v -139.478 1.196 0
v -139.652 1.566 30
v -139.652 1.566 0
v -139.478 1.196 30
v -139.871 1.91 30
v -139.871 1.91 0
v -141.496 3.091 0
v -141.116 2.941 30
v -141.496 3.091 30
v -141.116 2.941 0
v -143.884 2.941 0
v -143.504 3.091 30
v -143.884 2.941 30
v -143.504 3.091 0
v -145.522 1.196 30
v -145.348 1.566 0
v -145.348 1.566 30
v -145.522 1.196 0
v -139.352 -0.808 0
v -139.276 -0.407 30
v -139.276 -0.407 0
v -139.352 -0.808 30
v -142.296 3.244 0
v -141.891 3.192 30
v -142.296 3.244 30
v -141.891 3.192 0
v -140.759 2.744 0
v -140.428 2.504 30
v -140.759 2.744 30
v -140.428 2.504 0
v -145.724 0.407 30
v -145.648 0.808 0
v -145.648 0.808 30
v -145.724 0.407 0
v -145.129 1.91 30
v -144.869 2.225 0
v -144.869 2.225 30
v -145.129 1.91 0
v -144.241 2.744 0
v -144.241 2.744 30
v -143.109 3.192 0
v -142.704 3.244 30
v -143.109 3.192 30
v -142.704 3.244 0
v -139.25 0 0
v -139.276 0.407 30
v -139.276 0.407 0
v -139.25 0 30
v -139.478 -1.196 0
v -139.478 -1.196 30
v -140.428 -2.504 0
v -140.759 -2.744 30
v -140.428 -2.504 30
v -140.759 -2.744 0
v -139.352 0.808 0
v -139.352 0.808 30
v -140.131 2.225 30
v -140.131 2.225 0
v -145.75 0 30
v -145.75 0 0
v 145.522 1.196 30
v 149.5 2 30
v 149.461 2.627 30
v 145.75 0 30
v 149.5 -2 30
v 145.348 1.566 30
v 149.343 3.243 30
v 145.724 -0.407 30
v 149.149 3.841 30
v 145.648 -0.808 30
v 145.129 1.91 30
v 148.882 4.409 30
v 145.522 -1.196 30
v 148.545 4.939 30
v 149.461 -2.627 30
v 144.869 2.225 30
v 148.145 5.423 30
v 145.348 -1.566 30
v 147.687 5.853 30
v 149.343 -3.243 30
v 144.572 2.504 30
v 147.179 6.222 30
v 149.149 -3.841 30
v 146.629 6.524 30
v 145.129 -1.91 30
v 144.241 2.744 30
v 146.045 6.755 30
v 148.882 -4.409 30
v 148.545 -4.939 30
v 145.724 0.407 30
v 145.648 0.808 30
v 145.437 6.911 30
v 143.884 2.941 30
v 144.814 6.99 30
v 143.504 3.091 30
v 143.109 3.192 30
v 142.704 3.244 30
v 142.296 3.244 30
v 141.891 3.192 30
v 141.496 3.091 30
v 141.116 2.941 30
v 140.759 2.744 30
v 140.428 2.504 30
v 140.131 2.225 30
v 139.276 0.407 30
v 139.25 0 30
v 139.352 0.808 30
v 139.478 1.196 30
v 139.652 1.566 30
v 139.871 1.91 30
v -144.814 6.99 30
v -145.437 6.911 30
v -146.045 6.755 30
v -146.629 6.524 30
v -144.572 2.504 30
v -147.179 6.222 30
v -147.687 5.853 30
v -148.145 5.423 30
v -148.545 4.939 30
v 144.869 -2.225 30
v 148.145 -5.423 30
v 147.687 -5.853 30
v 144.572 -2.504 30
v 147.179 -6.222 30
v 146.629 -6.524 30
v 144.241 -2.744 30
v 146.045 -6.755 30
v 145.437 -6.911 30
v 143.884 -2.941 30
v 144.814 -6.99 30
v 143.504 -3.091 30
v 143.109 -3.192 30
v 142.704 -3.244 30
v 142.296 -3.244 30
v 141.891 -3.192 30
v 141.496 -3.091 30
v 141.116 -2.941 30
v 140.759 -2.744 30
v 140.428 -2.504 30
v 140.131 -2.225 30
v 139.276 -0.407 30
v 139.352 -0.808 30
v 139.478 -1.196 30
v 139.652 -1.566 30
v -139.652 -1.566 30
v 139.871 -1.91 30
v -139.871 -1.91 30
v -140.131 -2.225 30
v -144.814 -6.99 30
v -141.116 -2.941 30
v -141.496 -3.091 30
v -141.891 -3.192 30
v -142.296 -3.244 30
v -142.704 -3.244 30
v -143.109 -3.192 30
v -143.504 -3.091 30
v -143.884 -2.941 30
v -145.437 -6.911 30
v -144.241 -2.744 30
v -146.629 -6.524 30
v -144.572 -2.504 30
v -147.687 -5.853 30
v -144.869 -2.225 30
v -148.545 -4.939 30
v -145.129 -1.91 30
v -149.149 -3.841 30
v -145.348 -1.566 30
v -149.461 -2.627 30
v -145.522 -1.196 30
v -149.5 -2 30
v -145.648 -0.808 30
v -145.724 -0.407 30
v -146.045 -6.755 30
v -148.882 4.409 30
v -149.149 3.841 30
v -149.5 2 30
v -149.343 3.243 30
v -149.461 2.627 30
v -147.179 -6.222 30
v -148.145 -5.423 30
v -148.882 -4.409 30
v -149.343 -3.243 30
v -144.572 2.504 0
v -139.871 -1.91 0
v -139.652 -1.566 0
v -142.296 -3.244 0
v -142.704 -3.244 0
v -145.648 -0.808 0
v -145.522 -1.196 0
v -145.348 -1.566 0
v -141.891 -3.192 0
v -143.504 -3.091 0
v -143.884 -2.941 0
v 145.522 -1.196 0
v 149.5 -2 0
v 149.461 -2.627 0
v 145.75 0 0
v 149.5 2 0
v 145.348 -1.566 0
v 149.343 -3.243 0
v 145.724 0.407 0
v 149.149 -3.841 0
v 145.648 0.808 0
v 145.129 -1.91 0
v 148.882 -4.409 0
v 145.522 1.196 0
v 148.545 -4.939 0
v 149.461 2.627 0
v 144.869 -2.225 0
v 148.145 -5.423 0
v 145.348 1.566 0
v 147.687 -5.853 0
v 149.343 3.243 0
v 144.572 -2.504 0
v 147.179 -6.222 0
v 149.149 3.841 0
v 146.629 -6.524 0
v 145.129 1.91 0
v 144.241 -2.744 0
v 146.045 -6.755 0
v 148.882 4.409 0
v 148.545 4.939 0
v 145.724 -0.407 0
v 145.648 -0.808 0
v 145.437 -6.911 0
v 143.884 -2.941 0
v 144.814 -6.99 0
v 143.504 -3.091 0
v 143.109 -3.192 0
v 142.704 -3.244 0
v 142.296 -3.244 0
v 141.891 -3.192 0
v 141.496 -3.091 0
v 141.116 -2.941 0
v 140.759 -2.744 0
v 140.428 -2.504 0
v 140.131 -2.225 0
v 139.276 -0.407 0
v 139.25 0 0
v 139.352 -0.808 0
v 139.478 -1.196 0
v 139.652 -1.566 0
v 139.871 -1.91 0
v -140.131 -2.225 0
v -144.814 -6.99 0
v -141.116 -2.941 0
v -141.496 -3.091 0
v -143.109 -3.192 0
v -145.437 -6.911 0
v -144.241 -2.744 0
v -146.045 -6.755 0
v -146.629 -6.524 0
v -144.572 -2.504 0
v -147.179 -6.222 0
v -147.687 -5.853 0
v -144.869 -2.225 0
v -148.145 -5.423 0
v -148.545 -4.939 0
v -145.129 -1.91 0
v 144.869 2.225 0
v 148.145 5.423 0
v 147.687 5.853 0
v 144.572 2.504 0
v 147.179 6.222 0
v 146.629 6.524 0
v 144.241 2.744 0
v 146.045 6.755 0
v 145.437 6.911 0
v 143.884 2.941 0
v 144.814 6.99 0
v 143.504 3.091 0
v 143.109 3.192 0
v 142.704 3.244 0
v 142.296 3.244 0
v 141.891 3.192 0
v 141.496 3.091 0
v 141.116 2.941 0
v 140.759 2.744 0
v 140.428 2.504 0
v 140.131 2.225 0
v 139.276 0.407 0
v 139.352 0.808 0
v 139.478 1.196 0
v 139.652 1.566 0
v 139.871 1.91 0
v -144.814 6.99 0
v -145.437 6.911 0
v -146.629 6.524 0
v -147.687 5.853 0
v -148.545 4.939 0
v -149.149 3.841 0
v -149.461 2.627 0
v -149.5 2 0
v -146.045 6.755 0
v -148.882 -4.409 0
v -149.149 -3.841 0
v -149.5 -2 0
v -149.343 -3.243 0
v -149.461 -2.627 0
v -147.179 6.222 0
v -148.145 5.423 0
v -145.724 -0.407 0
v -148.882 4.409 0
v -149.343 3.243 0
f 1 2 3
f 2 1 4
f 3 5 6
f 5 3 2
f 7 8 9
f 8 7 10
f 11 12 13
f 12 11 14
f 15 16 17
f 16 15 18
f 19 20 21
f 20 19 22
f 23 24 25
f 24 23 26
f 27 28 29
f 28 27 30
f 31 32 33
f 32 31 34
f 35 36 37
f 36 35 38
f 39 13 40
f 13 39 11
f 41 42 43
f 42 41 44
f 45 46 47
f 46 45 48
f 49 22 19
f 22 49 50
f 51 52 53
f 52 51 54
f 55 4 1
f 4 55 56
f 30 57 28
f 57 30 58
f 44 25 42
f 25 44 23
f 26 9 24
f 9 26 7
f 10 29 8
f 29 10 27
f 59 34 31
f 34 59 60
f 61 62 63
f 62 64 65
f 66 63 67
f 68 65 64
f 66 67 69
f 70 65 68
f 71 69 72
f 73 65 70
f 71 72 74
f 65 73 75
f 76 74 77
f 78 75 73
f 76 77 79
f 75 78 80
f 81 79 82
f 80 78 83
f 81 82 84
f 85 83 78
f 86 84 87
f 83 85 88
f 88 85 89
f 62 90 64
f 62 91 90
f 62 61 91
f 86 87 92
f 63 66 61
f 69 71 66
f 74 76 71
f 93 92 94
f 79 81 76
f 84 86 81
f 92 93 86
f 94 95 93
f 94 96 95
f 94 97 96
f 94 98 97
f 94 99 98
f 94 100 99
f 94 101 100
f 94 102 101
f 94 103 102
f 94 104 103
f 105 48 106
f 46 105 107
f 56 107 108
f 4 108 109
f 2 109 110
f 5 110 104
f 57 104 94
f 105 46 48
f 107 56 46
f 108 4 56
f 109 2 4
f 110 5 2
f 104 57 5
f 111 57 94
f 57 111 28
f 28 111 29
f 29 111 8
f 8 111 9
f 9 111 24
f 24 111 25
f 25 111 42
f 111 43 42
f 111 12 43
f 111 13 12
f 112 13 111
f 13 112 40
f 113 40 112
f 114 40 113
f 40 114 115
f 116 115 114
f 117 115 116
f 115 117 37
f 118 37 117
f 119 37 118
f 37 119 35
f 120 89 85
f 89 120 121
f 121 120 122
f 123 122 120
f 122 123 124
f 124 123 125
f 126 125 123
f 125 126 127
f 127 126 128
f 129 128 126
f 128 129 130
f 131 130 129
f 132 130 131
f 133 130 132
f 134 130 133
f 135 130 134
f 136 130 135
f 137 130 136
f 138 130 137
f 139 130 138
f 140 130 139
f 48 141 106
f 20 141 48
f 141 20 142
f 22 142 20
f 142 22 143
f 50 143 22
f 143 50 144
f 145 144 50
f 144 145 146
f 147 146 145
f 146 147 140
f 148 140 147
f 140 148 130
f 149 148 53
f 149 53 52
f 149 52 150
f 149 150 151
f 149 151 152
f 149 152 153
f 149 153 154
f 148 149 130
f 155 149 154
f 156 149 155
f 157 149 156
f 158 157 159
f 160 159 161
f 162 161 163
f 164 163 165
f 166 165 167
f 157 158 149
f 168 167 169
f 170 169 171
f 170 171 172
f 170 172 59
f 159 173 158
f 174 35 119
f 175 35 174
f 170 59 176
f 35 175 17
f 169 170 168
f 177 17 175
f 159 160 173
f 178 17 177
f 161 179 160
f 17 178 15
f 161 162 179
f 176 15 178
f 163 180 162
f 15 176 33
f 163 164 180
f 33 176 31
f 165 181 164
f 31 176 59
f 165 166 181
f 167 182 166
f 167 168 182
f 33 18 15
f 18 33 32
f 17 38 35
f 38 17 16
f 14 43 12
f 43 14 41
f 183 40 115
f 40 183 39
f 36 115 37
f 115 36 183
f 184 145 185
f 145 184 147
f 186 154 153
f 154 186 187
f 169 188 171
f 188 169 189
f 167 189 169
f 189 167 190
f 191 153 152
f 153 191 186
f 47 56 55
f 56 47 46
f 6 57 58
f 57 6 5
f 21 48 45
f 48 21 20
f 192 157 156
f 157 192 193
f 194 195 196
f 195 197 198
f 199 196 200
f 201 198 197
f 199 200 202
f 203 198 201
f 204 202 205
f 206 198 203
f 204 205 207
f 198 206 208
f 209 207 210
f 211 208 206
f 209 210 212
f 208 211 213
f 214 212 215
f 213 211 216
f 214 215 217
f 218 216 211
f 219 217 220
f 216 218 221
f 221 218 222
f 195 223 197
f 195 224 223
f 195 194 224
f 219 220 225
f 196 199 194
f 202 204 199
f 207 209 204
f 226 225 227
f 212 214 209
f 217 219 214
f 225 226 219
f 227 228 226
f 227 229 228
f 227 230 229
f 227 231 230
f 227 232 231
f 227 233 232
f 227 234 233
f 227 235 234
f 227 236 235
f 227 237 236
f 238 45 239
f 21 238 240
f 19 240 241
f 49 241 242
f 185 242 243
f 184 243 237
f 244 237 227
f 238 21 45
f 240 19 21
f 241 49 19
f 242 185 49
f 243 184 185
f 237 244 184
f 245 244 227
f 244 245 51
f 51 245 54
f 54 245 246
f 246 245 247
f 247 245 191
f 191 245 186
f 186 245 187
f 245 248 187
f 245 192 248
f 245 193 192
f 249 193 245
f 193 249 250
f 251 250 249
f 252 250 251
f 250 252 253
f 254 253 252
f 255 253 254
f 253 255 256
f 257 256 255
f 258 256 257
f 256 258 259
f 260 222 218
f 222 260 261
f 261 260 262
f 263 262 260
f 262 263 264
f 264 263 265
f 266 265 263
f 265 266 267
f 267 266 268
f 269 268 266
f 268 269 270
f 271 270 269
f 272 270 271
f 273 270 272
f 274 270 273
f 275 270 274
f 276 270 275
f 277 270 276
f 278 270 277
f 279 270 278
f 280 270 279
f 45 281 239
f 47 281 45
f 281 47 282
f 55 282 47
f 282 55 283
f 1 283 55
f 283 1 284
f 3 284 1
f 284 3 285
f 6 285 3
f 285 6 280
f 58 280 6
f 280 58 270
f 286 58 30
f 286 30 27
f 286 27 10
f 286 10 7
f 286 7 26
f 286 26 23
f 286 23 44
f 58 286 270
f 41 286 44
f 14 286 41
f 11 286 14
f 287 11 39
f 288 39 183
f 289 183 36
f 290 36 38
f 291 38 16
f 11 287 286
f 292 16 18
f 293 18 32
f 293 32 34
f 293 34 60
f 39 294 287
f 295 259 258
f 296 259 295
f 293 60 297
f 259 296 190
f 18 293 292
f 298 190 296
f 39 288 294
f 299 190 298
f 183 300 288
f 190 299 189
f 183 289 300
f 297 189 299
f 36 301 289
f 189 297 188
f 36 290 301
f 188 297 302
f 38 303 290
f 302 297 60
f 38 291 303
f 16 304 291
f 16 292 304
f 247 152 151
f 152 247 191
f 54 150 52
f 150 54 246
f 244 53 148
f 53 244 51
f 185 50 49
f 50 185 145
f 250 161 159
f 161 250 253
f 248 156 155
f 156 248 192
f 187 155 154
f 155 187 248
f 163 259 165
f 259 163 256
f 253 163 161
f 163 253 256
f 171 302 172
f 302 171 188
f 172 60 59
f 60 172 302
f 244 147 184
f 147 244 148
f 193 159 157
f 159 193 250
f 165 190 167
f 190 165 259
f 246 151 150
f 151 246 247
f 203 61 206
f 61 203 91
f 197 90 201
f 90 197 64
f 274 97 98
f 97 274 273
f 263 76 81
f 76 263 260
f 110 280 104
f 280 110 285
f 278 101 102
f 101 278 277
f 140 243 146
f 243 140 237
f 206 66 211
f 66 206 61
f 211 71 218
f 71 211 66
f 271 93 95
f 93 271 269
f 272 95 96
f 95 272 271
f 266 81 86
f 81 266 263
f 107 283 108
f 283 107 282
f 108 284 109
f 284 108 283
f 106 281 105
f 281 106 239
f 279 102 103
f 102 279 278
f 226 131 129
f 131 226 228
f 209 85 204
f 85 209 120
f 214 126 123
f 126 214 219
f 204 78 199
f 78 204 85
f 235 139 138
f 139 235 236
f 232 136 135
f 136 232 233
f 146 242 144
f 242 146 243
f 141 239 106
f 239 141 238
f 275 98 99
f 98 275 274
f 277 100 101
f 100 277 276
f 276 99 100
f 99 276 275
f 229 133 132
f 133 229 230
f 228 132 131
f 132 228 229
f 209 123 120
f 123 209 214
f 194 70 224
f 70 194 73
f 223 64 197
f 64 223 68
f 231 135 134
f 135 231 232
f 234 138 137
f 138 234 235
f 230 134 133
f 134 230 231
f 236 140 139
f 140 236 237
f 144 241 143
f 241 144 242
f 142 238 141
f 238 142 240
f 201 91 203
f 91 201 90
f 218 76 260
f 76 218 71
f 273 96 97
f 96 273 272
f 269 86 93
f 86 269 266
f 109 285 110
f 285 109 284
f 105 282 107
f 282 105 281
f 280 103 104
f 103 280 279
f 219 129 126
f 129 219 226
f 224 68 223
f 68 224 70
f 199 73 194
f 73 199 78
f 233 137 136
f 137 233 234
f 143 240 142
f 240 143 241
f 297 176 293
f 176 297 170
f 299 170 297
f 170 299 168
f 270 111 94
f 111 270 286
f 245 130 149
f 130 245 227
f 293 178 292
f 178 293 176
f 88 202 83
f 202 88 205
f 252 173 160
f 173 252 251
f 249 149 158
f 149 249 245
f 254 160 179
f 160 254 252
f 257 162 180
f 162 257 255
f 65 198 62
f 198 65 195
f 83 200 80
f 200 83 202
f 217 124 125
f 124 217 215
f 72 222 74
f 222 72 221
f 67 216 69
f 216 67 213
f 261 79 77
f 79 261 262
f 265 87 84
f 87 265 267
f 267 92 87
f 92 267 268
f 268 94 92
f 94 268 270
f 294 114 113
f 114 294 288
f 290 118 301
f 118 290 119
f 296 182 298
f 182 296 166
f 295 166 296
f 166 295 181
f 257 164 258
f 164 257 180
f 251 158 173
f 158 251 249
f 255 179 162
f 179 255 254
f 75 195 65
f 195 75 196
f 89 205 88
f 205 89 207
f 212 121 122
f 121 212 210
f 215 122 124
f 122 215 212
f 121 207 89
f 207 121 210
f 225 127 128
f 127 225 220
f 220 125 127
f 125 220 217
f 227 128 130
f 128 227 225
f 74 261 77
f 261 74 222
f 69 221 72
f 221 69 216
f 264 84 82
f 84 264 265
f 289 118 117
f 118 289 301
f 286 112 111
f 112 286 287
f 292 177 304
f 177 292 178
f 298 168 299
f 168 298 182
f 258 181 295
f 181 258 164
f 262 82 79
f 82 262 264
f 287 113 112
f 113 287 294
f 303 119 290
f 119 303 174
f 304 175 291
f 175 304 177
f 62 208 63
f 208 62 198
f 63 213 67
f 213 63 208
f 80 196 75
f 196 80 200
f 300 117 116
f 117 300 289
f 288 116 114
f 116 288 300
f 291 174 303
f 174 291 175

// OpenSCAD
$fn = 50;


difference() {
	union() {
		hull() {
			translate(v = [-144.5000000000, 2.0000000000, 0]) {
				cylinder(h = 30, r = 5);
			}
			translate(v = [144.5000000000, 2.0000000000, 0]) {
				cylinder(h = 30, r = 5);
			}
			translate(v = [-144.5000000000, -2.0000000000, 0]) {
				cylinder(h = 30, r = 5);
			}
			translate(v = [144.5000000000, -2.0000000000, 0]) {
				cylinder(h = 30, r = 5);
			}
		}
	}
	union() {
		translate(v = [-142.5000000000, 0.0000000000, 0]) {
			cylinder(h = 30, r = 3.2500000000);
		}
		translate(v = [142.5000000000, 0.0000000000, 0]) {
			cylinder(h = 30, r = 3.2500000000);
		}
		translate(v = [-142.5000000000, 0.0000000000, 0]) {
			cylinder(h = 30, r = 1.8000000000);
		}
		translate(v = [142.5000000000, 0.0000000000, 0]) {
			cylinder(h = 30, r = 1.8000000000);
		}
		translate(v = [-142.5000000000, 0.0000000000, 0]) {
			cylinder(h = 30, r = 1.8000000000);
		}
		translate(v = [142.5000000000, 0.0000000000, 0]) {
			cylinder(h = 30, r = 1.8000000000);
		}
		translate(v = [-142.5000000000, 0.0000000000, 0]) {
			cylinder(h = 30, r = 1.8000000000);
		}
		translate(v = [142.5000000000, 0.0000000000, 0]) {
			cylinder(h = 30, r = 1.8000000000);
		}
	}
}
